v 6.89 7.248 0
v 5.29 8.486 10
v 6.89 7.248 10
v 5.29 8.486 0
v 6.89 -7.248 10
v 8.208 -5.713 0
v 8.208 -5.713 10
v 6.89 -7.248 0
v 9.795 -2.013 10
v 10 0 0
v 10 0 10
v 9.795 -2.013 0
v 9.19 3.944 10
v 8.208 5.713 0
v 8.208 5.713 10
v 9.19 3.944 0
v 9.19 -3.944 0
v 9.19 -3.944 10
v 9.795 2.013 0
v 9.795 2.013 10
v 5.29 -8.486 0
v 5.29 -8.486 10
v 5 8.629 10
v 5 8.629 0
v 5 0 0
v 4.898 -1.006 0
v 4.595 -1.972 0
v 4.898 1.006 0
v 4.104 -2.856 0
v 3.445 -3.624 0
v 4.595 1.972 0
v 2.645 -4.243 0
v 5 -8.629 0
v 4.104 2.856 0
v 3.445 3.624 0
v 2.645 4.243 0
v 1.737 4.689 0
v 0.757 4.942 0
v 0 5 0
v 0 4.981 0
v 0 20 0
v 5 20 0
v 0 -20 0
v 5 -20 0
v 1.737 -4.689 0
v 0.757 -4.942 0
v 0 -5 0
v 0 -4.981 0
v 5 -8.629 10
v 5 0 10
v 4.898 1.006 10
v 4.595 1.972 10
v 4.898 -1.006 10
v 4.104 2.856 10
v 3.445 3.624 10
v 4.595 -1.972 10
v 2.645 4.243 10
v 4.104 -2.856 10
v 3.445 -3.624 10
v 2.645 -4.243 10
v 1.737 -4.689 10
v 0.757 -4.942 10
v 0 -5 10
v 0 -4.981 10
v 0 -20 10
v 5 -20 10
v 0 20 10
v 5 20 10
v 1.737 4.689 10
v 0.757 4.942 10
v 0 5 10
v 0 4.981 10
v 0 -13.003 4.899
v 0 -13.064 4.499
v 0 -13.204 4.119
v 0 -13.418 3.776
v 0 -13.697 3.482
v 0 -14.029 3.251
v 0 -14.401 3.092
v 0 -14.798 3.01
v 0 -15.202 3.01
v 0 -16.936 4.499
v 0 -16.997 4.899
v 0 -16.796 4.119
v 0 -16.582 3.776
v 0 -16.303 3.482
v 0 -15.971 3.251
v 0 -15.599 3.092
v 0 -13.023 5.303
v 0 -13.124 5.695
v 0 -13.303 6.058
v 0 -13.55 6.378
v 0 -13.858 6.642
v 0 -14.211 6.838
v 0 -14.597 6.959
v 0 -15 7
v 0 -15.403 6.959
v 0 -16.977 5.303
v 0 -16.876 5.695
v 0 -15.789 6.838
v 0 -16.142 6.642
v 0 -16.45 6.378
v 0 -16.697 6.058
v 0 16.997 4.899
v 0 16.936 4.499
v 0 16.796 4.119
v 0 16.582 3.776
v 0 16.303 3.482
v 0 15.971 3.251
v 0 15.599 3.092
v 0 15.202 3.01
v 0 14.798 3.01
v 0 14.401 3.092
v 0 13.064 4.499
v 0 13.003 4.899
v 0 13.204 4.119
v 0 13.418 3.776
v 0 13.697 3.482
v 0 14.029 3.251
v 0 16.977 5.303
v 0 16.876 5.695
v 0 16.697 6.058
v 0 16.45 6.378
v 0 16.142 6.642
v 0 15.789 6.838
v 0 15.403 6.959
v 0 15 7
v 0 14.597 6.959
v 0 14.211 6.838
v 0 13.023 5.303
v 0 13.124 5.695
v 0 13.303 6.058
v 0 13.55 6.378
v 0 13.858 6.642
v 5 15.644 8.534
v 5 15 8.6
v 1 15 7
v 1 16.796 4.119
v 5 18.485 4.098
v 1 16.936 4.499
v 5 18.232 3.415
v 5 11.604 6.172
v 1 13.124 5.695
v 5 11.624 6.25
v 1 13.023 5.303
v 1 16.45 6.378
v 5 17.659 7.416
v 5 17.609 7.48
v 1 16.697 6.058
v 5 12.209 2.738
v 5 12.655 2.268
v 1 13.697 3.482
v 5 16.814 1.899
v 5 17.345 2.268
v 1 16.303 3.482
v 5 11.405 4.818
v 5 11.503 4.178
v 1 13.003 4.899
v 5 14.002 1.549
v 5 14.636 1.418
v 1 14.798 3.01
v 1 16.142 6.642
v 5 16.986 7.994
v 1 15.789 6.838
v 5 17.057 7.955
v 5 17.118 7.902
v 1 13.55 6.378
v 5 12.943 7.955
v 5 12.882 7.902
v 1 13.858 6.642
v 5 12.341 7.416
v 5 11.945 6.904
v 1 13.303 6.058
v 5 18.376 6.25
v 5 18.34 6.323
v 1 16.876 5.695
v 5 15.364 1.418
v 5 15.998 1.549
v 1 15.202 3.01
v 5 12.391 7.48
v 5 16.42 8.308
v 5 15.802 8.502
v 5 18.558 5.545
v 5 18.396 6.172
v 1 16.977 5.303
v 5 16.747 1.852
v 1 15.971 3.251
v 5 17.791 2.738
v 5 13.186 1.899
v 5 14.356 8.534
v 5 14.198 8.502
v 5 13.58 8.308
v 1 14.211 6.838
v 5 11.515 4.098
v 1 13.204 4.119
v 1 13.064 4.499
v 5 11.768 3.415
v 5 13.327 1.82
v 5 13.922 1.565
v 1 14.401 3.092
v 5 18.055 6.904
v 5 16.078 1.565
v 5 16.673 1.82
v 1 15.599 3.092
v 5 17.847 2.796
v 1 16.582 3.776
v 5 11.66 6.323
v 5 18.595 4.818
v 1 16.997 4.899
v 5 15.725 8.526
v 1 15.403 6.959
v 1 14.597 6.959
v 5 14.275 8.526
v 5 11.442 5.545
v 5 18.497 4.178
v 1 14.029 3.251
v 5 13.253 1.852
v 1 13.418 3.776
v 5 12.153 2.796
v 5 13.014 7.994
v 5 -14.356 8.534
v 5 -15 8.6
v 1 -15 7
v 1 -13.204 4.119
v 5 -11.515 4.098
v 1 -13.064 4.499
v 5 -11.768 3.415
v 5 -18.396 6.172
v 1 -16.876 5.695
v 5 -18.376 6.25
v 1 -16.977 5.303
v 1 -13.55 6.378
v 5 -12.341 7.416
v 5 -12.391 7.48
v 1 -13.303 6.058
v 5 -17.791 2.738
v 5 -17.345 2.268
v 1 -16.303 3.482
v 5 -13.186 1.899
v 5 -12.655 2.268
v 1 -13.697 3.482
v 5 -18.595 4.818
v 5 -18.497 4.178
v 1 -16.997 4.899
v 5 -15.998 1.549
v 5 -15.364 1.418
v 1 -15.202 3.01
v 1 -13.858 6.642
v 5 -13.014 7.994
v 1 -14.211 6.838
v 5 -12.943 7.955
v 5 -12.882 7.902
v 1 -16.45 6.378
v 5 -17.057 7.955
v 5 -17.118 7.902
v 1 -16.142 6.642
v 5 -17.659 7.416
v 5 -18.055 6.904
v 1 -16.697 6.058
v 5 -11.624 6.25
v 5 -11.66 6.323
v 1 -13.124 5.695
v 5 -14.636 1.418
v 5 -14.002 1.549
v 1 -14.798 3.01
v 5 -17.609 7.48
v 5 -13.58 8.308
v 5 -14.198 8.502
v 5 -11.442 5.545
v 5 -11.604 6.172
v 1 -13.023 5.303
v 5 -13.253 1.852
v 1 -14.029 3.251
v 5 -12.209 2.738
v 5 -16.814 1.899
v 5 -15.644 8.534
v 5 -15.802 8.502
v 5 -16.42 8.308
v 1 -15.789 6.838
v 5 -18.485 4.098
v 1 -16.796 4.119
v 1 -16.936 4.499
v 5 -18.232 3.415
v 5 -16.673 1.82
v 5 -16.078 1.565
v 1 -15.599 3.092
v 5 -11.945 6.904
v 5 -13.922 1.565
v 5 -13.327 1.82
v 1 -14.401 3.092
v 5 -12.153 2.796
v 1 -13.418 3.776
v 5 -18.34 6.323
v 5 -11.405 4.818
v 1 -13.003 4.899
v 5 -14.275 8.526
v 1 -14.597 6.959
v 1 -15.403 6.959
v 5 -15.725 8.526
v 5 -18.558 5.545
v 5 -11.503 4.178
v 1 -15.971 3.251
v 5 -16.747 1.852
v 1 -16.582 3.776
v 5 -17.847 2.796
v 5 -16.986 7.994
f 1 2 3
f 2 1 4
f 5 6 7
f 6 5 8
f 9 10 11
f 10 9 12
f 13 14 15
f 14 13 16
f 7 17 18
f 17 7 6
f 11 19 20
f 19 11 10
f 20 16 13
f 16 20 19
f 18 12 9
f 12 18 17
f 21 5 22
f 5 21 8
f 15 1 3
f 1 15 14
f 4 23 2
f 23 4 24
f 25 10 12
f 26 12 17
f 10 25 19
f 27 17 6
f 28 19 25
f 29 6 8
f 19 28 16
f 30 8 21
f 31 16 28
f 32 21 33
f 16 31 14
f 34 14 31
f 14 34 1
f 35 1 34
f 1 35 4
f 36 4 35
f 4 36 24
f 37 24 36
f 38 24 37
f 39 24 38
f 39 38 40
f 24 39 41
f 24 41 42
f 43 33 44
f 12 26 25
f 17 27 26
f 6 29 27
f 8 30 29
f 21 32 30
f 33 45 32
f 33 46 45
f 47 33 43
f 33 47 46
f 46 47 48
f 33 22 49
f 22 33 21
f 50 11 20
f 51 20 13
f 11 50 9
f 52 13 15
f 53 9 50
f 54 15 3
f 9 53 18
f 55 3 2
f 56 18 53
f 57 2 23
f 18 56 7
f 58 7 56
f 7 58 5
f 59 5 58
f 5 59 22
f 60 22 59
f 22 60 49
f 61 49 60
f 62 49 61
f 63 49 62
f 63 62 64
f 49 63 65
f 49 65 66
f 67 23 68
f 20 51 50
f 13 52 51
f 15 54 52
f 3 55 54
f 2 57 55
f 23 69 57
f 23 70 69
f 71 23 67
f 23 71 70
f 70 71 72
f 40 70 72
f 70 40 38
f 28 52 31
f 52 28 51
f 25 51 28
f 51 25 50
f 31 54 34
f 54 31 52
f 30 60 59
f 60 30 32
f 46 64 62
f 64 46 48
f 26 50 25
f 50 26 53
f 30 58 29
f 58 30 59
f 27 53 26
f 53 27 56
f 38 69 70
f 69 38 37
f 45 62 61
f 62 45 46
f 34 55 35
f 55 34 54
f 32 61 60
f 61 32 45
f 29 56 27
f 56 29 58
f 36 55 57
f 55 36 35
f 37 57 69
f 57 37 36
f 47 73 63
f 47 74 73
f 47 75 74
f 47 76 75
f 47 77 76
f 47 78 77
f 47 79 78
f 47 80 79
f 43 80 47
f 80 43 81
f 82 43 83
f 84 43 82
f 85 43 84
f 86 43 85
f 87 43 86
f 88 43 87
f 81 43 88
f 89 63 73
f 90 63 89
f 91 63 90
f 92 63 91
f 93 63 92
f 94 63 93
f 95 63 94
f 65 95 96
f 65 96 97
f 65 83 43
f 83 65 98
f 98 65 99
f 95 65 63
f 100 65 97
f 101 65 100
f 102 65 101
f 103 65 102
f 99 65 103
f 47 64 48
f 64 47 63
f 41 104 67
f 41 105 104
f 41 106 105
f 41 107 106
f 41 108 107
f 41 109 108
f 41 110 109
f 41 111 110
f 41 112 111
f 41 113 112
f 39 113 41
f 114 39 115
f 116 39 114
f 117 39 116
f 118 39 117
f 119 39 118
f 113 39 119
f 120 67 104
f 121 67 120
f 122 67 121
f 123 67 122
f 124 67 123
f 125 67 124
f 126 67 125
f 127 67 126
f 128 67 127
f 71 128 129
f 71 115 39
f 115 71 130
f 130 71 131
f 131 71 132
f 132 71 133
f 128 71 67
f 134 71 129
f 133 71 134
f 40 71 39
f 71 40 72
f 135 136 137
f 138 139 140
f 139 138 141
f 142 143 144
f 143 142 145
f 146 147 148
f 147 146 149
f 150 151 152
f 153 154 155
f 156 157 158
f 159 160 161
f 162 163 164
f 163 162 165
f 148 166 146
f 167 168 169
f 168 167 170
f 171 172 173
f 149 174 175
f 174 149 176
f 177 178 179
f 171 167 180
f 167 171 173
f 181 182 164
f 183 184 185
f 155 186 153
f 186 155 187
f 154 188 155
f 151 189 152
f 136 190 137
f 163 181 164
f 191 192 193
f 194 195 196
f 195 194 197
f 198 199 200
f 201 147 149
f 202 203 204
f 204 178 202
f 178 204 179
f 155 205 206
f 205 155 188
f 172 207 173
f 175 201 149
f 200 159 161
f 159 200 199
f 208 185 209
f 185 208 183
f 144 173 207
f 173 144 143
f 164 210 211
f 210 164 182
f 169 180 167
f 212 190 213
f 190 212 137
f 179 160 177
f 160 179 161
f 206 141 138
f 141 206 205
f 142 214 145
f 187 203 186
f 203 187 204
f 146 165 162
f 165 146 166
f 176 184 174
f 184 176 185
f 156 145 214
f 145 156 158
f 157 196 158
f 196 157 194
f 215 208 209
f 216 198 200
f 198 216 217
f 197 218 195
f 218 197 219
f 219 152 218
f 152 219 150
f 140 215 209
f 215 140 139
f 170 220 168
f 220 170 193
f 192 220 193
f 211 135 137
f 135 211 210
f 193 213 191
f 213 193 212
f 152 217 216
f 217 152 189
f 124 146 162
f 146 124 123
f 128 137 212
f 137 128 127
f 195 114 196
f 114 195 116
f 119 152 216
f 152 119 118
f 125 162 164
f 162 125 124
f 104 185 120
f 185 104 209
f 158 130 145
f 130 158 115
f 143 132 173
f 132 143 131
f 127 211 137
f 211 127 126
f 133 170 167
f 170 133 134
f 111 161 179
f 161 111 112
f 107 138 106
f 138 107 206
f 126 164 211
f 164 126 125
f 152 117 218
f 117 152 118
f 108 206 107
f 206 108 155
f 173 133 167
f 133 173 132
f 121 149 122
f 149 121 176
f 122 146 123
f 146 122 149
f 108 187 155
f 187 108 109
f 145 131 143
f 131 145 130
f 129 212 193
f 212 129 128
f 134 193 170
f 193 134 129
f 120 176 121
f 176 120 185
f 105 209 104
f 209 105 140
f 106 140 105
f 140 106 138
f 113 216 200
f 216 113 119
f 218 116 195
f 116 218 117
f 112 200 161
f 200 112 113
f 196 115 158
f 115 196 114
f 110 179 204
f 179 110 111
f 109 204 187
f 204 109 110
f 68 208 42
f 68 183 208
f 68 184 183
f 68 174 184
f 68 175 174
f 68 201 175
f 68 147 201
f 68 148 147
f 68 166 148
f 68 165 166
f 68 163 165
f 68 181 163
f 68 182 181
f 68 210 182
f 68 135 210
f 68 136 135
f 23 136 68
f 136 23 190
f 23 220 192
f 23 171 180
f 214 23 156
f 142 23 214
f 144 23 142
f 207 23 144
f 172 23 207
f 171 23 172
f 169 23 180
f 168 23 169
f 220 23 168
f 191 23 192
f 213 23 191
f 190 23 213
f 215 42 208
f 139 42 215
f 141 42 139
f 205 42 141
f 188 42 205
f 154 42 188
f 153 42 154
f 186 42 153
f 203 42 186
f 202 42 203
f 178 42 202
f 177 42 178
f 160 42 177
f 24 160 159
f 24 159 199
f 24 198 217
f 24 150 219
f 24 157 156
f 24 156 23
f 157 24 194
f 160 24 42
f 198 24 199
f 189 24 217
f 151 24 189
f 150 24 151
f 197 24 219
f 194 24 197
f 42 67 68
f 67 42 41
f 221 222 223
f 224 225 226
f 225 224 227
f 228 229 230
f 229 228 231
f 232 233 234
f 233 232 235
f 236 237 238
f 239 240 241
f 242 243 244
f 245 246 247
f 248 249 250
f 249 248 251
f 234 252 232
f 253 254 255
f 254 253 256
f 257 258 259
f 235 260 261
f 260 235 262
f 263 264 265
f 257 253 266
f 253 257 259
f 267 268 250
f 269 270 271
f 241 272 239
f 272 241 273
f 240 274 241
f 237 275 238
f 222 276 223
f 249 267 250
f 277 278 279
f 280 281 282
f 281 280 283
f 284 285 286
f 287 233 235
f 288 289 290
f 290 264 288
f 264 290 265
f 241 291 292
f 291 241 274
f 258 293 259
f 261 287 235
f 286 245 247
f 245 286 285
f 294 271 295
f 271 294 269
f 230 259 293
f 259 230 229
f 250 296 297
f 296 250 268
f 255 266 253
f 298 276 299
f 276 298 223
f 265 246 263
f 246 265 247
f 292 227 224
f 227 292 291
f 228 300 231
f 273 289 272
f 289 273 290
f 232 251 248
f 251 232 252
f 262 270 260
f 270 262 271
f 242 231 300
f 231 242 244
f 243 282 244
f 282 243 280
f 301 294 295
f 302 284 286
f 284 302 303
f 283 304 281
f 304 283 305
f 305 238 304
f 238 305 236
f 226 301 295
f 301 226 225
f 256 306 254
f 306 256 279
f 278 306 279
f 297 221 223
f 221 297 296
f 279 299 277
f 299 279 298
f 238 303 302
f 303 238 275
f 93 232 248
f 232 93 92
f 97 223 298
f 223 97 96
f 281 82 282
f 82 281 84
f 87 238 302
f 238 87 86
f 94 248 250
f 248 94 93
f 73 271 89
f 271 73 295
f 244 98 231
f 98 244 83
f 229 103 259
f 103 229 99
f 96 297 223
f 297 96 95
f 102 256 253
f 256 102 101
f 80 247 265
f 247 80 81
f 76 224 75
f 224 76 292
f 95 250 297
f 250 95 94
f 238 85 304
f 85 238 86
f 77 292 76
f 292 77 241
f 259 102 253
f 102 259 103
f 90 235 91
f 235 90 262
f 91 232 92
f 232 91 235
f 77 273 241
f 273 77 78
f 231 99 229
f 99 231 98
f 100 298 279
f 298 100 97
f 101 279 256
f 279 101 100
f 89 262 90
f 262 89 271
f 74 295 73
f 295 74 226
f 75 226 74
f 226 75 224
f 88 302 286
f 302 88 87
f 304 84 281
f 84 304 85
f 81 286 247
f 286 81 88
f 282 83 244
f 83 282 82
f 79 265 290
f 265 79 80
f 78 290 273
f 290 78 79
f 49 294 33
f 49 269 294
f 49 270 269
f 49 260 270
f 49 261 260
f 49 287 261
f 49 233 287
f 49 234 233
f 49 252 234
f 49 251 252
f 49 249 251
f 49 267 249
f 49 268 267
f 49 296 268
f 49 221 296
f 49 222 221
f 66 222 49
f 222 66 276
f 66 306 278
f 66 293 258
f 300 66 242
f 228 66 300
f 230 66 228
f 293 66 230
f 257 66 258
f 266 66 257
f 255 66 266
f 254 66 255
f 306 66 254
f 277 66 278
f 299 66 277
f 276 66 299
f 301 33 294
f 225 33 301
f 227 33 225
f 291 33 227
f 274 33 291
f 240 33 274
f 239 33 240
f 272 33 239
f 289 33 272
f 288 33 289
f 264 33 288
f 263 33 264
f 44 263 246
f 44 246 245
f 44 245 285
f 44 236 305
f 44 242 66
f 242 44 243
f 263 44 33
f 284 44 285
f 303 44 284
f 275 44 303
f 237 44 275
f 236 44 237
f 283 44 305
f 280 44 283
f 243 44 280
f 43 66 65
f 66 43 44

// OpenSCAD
difference(){
color("white",1.0)
cylinder(h=10,r1=10.0,r2=10.0,center=false,$fn=31);

translate([0,0,-1])
cylinder(h=12,r1=5.0,r2=5.0,center=false,$fn=31);

translate([-40,-20,-1])
cube([40, 40, 12],center=false);

}
difference(){
color("white",1.0)
translate([0,5.0,0])
cube([5.0, 15.0, 10],center=false);

translate([6.0,15.0,5.0])
rotate([0,-90,0])
union(){
cylinder(h=5,r1=4.0,r2=2.0,center=false,$fn=31);

translate([0,0,5])
cylinder(h=10,r1=2.0,r2=2.0,center=false,$fn=31);

}
}
difference(){
color("white",1.0)
translate([0,-20,0])
cube([5.0, 15.0, 10],center=false);

translate([6.0,-15.0,5.0])
rotate([0,-90,0])
union(){
cylinder(h=5,r1=4.0,r2=2.0,center=false,$fn=31);

translate([0,0,5])
cylinder(h=10,r1=2.0,r2=2.0,center=false,$fn=31);

}
}
